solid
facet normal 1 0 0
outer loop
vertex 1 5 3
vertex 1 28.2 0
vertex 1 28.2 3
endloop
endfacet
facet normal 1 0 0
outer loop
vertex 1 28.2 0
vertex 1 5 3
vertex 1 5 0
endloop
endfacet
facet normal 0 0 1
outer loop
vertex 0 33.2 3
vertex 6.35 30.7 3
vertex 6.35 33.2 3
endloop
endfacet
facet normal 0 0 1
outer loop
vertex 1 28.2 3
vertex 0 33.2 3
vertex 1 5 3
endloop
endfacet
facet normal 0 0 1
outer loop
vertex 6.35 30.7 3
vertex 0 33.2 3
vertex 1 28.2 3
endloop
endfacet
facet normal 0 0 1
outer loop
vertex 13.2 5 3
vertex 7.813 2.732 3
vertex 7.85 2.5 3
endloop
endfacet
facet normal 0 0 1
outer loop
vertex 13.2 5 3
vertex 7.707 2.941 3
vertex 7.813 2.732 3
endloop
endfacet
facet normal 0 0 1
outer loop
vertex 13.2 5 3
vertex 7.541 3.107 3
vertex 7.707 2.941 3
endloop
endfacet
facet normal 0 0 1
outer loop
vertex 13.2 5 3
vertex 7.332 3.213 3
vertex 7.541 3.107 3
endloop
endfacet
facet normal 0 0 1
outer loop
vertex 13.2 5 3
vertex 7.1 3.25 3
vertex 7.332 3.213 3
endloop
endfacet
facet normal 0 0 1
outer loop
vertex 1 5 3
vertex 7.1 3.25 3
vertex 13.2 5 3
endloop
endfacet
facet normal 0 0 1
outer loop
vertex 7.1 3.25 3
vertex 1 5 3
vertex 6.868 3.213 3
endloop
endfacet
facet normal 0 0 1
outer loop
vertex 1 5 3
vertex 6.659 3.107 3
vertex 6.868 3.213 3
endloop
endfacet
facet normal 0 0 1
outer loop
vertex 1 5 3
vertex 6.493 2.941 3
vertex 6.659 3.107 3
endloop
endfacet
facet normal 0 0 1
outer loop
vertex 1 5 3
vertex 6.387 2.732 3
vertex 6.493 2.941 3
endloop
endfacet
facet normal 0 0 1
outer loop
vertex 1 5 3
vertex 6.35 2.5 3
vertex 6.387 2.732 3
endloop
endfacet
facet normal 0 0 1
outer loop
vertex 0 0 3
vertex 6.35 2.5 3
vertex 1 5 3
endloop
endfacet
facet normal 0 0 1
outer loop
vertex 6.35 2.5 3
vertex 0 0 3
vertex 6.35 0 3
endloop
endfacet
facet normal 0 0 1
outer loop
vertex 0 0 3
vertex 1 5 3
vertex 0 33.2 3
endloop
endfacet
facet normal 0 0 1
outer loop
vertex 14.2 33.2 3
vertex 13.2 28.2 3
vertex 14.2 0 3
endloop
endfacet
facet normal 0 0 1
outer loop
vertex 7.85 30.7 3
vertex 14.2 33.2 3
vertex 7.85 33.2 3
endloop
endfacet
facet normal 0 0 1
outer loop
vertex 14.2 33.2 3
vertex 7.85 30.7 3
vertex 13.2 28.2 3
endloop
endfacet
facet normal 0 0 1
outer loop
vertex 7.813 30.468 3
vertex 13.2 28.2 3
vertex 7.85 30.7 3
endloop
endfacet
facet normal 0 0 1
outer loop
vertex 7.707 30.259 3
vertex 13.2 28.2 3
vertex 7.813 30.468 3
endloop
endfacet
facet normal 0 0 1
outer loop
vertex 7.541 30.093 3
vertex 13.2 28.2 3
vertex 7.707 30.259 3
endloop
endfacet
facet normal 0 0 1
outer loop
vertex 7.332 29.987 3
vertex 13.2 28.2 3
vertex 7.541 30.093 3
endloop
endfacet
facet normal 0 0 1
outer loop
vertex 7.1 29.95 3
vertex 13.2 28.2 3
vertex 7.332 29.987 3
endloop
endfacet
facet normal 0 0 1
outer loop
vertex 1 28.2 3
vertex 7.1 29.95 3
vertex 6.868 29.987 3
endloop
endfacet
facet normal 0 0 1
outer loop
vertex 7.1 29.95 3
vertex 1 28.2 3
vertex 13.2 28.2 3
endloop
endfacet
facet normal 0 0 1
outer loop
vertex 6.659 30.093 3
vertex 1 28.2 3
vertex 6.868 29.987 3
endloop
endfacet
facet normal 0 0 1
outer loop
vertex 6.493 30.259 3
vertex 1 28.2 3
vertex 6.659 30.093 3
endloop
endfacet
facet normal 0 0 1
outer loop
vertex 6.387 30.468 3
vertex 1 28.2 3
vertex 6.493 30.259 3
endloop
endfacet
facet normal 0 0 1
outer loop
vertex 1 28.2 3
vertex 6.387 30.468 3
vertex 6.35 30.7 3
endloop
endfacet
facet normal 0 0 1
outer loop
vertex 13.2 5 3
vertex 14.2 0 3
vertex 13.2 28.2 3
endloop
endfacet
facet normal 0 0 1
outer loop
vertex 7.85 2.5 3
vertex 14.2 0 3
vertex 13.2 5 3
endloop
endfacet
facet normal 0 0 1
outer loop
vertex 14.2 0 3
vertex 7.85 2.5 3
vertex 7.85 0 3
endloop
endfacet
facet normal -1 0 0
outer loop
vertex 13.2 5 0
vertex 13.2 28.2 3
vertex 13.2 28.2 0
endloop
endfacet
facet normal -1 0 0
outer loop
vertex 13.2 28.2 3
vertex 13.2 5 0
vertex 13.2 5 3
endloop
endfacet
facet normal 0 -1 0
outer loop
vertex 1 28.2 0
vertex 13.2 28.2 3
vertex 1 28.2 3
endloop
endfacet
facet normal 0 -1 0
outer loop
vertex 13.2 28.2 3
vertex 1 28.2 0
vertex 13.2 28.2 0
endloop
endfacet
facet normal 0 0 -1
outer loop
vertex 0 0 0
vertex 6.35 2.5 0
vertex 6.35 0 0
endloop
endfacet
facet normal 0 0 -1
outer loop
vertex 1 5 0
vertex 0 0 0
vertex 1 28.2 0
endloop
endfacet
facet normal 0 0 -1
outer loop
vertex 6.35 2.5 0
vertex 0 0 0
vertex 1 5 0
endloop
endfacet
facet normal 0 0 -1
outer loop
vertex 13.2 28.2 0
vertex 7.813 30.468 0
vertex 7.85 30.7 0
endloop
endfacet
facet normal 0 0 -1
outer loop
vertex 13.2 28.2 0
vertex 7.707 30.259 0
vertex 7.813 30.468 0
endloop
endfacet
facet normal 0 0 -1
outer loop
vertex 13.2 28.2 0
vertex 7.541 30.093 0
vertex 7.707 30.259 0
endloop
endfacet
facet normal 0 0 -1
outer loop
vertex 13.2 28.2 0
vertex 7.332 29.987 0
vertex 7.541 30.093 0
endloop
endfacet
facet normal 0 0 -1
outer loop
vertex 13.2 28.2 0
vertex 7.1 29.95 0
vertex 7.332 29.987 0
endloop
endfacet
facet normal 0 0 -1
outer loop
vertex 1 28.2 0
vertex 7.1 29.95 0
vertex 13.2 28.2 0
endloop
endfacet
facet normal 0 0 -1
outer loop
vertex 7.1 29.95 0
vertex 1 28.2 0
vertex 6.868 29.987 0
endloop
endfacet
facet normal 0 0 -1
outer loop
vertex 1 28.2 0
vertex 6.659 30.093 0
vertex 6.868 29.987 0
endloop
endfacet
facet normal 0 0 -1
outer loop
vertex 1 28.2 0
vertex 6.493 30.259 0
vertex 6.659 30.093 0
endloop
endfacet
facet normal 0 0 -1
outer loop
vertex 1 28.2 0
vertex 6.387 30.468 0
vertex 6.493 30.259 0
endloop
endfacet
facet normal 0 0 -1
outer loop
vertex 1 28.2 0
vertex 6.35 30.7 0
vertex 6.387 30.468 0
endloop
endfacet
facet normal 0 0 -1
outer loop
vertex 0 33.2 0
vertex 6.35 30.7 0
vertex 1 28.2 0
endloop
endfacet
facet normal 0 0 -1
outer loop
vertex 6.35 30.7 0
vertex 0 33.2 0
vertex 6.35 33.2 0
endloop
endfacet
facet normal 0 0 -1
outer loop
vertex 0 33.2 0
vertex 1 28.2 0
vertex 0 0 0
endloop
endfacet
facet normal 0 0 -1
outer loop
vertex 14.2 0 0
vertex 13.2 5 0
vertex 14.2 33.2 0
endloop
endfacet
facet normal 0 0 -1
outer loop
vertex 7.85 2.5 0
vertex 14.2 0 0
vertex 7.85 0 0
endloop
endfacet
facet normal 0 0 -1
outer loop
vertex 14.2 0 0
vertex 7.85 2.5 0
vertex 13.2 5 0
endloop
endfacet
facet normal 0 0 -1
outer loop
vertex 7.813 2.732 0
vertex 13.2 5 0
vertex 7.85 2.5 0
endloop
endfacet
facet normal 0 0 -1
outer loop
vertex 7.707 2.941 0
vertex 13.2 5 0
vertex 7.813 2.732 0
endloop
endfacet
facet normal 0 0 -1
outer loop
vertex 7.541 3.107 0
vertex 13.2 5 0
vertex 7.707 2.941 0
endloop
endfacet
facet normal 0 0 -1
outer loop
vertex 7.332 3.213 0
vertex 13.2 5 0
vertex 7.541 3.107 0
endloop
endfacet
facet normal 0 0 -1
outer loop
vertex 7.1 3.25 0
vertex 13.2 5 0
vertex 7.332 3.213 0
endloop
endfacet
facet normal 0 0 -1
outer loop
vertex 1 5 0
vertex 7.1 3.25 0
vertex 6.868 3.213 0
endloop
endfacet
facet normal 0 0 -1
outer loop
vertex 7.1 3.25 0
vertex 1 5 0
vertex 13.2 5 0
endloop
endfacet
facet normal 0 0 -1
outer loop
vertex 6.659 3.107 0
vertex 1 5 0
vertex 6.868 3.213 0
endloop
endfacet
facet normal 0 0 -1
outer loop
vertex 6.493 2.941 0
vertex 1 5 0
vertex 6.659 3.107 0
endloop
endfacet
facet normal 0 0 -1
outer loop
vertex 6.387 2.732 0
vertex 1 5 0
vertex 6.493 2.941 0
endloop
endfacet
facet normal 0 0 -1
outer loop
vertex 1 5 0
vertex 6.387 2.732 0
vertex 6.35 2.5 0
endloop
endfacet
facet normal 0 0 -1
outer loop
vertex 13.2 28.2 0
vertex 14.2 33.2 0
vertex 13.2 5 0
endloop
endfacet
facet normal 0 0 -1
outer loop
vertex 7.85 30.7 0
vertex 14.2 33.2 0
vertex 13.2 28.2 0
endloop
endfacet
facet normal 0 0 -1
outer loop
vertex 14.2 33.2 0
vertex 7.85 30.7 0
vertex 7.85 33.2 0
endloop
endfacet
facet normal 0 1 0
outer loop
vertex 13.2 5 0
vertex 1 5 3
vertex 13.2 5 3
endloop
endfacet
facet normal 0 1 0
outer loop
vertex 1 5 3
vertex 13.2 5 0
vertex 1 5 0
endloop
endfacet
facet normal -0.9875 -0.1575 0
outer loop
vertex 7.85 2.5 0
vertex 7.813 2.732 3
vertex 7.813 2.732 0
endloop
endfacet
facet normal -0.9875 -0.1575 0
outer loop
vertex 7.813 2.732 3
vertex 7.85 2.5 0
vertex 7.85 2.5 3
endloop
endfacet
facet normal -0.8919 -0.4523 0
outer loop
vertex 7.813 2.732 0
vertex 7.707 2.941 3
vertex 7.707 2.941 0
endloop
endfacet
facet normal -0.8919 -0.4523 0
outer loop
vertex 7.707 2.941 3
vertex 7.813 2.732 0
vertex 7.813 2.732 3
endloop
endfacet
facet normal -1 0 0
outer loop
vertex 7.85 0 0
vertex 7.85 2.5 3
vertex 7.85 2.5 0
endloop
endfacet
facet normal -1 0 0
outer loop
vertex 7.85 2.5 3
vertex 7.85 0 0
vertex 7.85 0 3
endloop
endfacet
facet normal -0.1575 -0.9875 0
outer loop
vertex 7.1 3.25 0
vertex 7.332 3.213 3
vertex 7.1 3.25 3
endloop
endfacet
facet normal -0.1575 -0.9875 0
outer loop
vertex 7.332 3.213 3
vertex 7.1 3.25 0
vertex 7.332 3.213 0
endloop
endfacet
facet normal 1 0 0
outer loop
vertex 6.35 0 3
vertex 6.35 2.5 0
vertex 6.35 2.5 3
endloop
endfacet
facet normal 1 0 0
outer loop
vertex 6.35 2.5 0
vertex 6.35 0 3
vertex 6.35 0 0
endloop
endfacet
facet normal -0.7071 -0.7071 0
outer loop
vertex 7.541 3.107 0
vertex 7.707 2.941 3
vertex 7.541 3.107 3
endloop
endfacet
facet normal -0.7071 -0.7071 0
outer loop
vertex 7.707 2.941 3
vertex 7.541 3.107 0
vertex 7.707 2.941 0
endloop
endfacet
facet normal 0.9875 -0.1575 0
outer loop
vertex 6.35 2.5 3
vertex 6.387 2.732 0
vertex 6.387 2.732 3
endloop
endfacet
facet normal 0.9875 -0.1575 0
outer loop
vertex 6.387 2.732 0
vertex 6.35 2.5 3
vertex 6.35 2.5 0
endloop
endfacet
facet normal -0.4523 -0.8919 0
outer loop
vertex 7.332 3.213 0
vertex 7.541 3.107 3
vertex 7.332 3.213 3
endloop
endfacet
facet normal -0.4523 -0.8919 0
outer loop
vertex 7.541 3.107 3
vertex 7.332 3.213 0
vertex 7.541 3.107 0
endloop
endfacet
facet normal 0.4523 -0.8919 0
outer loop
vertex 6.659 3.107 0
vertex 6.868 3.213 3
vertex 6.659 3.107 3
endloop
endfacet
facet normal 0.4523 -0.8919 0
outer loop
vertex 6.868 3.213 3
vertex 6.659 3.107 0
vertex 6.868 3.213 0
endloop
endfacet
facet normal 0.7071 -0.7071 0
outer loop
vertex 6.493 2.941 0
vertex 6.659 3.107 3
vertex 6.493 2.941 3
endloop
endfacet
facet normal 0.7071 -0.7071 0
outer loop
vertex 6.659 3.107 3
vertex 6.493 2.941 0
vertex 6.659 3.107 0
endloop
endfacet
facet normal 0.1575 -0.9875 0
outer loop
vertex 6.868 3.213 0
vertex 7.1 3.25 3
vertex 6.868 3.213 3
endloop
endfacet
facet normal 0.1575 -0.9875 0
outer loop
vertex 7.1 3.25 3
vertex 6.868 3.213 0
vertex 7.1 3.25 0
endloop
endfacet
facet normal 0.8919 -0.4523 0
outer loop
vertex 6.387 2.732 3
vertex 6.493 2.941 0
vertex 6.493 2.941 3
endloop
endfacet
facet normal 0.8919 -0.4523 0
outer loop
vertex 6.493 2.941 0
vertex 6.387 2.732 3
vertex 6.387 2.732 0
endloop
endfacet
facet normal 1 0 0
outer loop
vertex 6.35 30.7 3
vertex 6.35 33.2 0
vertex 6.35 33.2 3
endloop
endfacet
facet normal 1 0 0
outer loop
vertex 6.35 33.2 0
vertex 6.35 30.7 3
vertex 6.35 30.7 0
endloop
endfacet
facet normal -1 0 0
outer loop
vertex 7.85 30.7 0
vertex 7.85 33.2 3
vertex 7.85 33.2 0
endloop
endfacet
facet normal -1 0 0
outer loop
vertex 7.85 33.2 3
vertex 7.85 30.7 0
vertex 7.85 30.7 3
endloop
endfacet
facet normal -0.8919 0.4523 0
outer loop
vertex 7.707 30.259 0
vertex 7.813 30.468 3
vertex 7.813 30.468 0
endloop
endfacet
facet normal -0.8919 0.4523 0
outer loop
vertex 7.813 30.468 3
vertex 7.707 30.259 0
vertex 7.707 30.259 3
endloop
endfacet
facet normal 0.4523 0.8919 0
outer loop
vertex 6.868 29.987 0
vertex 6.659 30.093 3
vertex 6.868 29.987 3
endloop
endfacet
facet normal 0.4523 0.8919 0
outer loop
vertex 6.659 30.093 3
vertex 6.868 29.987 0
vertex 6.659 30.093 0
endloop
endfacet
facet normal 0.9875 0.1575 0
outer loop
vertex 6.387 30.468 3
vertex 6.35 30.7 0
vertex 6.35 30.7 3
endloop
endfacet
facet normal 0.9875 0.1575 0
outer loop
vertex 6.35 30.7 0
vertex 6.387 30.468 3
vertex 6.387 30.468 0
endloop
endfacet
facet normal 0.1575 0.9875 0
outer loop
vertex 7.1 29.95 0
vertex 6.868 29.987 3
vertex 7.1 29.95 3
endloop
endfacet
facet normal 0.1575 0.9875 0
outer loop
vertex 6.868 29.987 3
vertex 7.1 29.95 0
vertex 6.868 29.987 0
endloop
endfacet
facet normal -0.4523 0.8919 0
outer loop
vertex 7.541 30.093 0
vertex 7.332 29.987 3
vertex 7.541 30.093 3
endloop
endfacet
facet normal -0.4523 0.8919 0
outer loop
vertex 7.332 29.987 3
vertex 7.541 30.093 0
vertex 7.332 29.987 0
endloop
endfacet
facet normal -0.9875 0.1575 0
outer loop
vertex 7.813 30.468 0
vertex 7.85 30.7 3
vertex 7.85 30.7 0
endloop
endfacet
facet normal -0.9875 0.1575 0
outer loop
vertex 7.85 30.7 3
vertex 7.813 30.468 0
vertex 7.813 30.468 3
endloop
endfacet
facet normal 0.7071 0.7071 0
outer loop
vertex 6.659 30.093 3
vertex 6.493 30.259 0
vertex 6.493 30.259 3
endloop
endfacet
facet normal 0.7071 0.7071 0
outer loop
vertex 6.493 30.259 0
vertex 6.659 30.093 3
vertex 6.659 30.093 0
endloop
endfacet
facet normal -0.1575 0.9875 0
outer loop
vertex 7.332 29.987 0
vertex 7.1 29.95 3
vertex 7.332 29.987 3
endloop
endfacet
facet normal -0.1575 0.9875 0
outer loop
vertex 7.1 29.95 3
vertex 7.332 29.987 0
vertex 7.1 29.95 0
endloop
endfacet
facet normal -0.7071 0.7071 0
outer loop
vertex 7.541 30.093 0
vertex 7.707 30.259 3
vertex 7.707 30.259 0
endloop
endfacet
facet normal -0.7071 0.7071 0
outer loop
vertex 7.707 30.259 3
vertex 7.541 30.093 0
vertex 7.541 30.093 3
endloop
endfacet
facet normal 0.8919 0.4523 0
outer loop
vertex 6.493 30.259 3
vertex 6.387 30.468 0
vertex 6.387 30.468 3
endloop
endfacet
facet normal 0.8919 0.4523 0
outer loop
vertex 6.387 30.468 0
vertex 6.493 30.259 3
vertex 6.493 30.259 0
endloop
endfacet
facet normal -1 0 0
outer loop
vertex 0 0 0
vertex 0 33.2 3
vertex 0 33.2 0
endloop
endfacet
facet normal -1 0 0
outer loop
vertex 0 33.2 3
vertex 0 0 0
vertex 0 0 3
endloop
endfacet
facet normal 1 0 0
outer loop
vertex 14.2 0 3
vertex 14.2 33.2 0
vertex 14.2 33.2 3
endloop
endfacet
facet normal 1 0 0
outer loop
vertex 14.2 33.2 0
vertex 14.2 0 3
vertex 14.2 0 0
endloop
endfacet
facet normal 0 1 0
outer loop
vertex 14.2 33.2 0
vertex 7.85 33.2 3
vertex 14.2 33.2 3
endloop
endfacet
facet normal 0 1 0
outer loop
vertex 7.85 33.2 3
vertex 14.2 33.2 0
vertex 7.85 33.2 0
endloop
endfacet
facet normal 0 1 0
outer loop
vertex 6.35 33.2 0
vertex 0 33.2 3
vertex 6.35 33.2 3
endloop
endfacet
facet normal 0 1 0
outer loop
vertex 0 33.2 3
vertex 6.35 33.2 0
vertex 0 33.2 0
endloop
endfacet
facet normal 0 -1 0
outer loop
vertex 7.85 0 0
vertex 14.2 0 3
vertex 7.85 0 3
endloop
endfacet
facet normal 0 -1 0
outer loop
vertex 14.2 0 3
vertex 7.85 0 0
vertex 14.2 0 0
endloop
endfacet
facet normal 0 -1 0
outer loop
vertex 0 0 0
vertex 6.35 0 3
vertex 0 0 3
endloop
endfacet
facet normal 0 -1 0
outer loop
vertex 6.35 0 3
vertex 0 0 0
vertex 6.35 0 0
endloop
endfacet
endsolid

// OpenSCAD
// file: ../parameters.scad
global_clearance = 0.5;


//Main tube diameter - hole [mm]
main_tube_outer_diameter = 25.4;
main_tube_inner_diameter = 23.05;

// Nastavení parametrů rotoru

gliding_aggle = 14;         // tenhle úhel by se zřejmě v budoucnu měl počítat z požadované klouzavosti.

rotor_blade_AOA = 1.5;      // nastavení úhlu náběhu rotorového listu
rotor_blade_length = 970;   // délka rotorového listu
rotor_blade_depth = 50;     // hloubka rotorového listu
rotor_height = 180;         // výška otočného kloubu rotoru nad hlavní trubkou vírníku (odhad)
rotor_blades_count = 2;
rotor_delta_angle = 12;


rotor_head_width =  21.4;    //Rozměr 1 v nákresu
pilon_wall_thickness = 4.2;  // Rozměr 2 v nákresu
horizontal_screw_distance = 14.5;   // Rozměr 4 v nákresu
vertical_screw_distance = 12;       // rozměr 5 v nkresu

rotorhead_wall_thickness = 2; // sila tistenych dilu


bearing_outer_diameter = 7.1;    // Rozměr B1 v nákresu s přídavkem na toleranci otvoru
bearing_thickness = 3.1;        // Rozměr B2 v nákresu
bearing_shaft_length = 19.5;    // Rozměr B3 v nákresu


// nastavení parametrů motoru

engine_angle = -8;
engine_diameter = 55;
engine_offset = 55;

engine_screws_radius = 15;
engine_holes_radius = (24 + 44)/4;
engine_shatf_hole_diameter = 13;

// screw length step - minimum difference in length between two types of screws
basic_screw_length = 5;

//Screw diameter and nut for M5 [mm]
M5_screw_diameter=5.5;
M5_head_height = 5;
M5_head_diameter = 13+0.5;
M5_nut_height = 4.5;
M5_nut_diameter = 9.4;
M5_nut_pocket = 8.4;

//Screw diameter and nut for M4 [mm]
M4_screw_diameter=4.5;
M4_screw_head_height = 4;
M4_nut_height = 3.2;
M4_nut_diameter = 8.4;
M4_nut_pocket = 7.5;

//Screw diameter and nut for M3 [mm]
M3_screw_diameter = 3.2;
M3_nut_height = 2.7;
M3_nut_diameter = 6.6;
M3_screw_head_height = 3;
M3_nut_pocket = 5.6;


//Screw diameter and nut for M2,5 [mm]
M2_5_screw_diameter = 2.7;
M2_5_nut_height = 2.3;
M2_5_nut_diameter = 6;
M2_5_nut_pocket = 5.1;

//Screw diameter and nut for M2 [mm]
M2_screw_diameter = 2.2;
M2_nut_height = 1.8;
M2_nut_diameter = 4.5;
M2_nut_pocket = 3.95;



//šroub servo
Servo_screw = 1.5;
Servo_nut_height = 1;
Servo_nut_diameter = 2.7;



//center_of_gravity_position = [main_pilon_position - tan(gliding_aggle)*rotor_height, 0, 0];


////podzvozek

radius_undercarriage = 25;
vzdalenost_x = tan(20) * 131;
vzdalenost_y = (131 - radius_undercarriage)/tan(79);
uhel_y = 90 - 20;
uhel_x = 90 - 79;

maximum_printable_size = 150;


////Pitotova trubice
Pitot_tube_diameter = 4.02 + 1;
Distance_hole_from_tube = 11.92;  //vzdálenost otvoru pro připevnění od samotné trubičky
// main file
include<../parameters.scad>

servo_height = 23.2;
servo_width = 12.2;
distance = 3;

difference() {
    cube([servo_width+2, servo_height+10, distance]);
    union() {
        translate([1, 5, 0]) cube([servo_width, servo_height, distance]);
        hull() {
            translate([(servo_width+2)/2, 2.5, 0]) cylinder(d=Servo_screw, h=distance, $fn=20);
            translate([(servo_width+2)/2, 0, distance/2]) cube([Servo_screw, Servo_screw, distance], center=true);
        }
        hull() {
            translate([(servo_width+2)/2, servo_height+7.5, 0]) cylinder(d=Servo_screw, h=distance, $fn=20);
            translate([(servo_width+2)/2, servo_height+10, distance/2]) cube([Servo_screw, Servo_screw, distance], center=true);
        }
    }
}
